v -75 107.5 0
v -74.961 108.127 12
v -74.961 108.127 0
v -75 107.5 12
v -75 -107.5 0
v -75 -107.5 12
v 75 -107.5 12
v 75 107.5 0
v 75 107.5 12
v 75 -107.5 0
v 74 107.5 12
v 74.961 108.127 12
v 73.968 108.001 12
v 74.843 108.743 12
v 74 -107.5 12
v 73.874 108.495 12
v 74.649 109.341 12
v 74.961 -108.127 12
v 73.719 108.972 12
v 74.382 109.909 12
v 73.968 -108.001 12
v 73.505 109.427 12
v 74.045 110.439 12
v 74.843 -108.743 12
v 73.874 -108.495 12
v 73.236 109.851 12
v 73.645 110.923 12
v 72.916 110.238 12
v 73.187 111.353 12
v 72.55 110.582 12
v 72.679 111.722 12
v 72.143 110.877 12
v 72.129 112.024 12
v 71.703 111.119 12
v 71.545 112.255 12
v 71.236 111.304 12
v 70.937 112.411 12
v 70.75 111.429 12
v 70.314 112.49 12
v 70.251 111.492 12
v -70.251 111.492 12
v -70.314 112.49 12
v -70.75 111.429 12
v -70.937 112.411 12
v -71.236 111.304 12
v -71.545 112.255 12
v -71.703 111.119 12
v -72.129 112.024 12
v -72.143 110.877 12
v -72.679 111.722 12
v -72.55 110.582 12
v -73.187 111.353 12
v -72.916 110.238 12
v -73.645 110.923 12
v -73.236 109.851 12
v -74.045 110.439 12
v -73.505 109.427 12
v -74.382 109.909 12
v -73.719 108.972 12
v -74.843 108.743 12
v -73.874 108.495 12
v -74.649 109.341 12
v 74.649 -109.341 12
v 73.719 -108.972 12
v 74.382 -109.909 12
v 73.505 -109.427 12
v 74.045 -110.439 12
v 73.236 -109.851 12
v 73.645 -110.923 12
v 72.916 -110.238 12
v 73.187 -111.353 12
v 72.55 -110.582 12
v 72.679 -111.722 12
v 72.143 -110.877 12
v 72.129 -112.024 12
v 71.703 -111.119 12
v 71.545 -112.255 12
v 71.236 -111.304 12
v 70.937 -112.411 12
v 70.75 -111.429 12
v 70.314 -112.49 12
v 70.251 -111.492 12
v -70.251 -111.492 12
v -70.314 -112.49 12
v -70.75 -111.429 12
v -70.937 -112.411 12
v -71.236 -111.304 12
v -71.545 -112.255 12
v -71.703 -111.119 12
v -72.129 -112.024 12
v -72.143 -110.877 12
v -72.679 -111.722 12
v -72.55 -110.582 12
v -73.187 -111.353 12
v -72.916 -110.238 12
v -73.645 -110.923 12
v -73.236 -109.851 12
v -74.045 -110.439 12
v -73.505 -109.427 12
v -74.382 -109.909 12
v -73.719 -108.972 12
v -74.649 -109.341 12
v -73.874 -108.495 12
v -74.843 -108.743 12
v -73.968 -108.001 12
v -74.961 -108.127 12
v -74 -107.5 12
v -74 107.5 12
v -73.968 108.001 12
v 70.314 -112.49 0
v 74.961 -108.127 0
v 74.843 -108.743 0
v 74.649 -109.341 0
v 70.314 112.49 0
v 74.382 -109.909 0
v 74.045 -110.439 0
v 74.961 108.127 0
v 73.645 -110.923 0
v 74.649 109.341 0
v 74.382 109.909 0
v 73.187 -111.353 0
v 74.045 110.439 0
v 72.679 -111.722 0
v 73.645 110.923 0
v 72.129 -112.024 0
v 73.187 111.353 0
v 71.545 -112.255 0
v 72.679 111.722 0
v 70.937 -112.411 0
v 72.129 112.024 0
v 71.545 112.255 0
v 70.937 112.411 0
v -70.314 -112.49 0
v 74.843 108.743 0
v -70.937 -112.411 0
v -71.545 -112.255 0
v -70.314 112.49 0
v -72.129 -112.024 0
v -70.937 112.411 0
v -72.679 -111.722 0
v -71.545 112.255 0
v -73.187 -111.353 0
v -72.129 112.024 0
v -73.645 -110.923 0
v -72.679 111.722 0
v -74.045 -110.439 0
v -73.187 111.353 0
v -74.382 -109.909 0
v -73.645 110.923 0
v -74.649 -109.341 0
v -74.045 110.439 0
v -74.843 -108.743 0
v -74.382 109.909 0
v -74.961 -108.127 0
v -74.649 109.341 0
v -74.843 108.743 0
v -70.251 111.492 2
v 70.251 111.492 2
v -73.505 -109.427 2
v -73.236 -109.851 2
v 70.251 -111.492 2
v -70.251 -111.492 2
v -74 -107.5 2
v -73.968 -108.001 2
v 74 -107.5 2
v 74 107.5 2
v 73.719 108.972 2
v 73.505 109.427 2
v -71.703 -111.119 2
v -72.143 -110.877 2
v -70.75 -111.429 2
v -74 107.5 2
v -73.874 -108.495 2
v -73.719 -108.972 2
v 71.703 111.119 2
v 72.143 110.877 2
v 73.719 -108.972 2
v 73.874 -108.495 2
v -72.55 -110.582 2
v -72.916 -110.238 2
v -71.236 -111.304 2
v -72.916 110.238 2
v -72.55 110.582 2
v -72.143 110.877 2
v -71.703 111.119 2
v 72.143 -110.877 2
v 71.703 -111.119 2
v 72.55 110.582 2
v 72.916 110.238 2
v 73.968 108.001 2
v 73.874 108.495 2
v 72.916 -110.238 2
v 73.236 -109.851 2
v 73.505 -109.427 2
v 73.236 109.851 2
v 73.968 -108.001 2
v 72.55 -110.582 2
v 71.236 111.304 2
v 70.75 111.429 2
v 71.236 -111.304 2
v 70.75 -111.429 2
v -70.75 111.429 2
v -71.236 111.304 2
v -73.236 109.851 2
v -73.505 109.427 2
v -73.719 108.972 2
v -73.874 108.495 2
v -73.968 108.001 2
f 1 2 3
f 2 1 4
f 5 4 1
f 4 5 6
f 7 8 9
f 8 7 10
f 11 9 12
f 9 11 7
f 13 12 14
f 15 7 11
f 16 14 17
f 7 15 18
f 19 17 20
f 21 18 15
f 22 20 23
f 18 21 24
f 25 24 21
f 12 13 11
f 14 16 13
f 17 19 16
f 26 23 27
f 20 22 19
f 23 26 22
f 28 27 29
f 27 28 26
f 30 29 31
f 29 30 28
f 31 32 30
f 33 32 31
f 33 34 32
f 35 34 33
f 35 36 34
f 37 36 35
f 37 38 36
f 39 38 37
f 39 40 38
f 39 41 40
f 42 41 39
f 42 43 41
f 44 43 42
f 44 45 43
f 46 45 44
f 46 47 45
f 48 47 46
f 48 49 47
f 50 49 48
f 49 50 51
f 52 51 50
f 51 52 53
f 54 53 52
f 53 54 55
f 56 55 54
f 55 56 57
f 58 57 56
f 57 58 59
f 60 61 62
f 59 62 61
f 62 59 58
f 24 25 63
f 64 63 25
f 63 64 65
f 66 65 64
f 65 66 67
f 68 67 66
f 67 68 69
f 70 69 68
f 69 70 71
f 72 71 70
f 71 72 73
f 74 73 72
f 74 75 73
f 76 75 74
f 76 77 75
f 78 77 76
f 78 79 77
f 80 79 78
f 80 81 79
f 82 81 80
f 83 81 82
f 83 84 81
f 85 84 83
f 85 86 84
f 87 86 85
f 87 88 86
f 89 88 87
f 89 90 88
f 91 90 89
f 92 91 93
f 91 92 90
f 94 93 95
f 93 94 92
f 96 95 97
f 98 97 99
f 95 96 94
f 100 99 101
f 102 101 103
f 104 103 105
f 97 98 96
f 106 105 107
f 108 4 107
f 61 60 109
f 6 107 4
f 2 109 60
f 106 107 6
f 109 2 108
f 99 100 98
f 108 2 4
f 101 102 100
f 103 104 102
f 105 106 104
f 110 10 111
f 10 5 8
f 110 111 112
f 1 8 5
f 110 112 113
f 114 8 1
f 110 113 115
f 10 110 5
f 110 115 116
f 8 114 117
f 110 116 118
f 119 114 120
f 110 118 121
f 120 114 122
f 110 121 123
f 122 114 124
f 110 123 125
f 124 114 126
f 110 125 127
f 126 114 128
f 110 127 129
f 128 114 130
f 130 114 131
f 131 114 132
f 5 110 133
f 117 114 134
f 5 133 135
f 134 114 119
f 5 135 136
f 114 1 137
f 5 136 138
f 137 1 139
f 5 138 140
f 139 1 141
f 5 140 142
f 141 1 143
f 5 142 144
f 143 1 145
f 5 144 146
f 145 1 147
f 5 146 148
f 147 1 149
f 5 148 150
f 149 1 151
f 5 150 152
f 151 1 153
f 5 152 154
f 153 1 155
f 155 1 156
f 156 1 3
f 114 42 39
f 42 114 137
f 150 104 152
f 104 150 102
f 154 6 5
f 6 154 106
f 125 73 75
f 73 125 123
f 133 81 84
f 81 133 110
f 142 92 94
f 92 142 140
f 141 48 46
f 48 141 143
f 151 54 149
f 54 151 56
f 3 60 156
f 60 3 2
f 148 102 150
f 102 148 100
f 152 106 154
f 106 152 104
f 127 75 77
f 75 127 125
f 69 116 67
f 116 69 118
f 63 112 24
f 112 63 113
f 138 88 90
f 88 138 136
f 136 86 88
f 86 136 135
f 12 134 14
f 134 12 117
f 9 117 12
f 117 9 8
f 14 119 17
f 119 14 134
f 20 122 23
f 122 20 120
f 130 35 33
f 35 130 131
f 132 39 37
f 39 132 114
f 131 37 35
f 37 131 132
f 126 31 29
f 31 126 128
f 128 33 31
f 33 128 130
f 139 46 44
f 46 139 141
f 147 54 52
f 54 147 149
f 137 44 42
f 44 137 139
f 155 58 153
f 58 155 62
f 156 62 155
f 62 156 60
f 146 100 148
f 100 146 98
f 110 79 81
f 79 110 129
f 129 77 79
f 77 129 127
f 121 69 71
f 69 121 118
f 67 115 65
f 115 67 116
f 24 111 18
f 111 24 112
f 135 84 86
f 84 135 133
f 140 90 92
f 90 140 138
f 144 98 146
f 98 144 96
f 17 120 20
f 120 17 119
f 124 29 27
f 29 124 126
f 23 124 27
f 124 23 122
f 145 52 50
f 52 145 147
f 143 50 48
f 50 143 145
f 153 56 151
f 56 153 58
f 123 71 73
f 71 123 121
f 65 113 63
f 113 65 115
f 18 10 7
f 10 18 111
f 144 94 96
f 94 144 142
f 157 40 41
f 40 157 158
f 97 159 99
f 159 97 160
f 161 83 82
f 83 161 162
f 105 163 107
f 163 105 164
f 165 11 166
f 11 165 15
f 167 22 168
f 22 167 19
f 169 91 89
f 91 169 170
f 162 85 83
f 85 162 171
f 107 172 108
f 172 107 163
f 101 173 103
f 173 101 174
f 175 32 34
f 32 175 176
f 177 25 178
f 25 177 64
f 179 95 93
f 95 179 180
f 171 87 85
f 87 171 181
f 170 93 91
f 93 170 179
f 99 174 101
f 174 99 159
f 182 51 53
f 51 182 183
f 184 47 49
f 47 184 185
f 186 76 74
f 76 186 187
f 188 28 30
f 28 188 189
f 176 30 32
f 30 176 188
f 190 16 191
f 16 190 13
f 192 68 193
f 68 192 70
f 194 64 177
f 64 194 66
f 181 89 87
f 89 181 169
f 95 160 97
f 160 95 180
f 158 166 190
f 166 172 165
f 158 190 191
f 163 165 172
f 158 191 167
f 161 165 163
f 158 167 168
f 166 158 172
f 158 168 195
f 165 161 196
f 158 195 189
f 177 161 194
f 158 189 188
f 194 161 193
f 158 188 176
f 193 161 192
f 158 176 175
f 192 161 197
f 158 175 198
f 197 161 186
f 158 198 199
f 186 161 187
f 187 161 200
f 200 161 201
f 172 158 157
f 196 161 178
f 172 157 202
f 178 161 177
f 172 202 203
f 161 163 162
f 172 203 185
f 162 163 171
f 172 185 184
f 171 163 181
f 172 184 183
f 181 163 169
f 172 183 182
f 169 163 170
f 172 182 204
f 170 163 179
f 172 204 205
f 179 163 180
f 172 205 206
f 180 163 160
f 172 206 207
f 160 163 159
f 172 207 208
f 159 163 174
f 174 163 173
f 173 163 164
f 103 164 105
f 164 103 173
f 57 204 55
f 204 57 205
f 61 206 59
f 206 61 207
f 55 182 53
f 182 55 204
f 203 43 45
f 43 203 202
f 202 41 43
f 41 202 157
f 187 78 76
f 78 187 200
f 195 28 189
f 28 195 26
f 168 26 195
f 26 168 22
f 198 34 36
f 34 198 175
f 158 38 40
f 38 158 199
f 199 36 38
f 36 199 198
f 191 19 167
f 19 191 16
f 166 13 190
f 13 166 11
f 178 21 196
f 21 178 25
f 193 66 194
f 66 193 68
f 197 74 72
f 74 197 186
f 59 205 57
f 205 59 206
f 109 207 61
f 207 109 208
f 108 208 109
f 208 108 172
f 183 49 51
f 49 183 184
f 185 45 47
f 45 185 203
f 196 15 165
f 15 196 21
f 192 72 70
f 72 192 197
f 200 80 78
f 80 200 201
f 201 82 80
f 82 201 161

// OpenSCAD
$fn = 50;


difference() {
	union() {
		hull() {
			translate(v = [-70.0000000000, 107.5000000000, 0]) {
				cylinder(h = 12, r = 5);
			}
			translate(v = [70.0000000000, 107.5000000000, 0]) {
				cylinder(h = 12, r = 5);
			}
			translate(v = [-70.0000000000, -107.5000000000, 0]) {
				cylinder(h = 12, r = 5);
			}
			translate(v = [70.0000000000, -107.5000000000, 0]) {
				cylinder(h = 12, r = 5);
			}
		}
	}
	union() {
		translate(v = [0, 0, 2]) {
			hull() {
				translate(v = [-70.0000000000, 107.5000000000, 0]) {
					cylinder(h = 10, r = 4);
				}
				translate(v = [70.0000000000, 107.5000000000, 0]) {
					cylinder(h = 10, r = 4);
				}
				translate(v = [-70.0000000000, -107.5000000000, 0]) {
					cylinder(h = 10, r = 4);
				}
				translate(v = [70.0000000000, -107.5000000000, 0]) {
					cylinder(h = 10, r = 4);
				}
			}
		}
	}
}
